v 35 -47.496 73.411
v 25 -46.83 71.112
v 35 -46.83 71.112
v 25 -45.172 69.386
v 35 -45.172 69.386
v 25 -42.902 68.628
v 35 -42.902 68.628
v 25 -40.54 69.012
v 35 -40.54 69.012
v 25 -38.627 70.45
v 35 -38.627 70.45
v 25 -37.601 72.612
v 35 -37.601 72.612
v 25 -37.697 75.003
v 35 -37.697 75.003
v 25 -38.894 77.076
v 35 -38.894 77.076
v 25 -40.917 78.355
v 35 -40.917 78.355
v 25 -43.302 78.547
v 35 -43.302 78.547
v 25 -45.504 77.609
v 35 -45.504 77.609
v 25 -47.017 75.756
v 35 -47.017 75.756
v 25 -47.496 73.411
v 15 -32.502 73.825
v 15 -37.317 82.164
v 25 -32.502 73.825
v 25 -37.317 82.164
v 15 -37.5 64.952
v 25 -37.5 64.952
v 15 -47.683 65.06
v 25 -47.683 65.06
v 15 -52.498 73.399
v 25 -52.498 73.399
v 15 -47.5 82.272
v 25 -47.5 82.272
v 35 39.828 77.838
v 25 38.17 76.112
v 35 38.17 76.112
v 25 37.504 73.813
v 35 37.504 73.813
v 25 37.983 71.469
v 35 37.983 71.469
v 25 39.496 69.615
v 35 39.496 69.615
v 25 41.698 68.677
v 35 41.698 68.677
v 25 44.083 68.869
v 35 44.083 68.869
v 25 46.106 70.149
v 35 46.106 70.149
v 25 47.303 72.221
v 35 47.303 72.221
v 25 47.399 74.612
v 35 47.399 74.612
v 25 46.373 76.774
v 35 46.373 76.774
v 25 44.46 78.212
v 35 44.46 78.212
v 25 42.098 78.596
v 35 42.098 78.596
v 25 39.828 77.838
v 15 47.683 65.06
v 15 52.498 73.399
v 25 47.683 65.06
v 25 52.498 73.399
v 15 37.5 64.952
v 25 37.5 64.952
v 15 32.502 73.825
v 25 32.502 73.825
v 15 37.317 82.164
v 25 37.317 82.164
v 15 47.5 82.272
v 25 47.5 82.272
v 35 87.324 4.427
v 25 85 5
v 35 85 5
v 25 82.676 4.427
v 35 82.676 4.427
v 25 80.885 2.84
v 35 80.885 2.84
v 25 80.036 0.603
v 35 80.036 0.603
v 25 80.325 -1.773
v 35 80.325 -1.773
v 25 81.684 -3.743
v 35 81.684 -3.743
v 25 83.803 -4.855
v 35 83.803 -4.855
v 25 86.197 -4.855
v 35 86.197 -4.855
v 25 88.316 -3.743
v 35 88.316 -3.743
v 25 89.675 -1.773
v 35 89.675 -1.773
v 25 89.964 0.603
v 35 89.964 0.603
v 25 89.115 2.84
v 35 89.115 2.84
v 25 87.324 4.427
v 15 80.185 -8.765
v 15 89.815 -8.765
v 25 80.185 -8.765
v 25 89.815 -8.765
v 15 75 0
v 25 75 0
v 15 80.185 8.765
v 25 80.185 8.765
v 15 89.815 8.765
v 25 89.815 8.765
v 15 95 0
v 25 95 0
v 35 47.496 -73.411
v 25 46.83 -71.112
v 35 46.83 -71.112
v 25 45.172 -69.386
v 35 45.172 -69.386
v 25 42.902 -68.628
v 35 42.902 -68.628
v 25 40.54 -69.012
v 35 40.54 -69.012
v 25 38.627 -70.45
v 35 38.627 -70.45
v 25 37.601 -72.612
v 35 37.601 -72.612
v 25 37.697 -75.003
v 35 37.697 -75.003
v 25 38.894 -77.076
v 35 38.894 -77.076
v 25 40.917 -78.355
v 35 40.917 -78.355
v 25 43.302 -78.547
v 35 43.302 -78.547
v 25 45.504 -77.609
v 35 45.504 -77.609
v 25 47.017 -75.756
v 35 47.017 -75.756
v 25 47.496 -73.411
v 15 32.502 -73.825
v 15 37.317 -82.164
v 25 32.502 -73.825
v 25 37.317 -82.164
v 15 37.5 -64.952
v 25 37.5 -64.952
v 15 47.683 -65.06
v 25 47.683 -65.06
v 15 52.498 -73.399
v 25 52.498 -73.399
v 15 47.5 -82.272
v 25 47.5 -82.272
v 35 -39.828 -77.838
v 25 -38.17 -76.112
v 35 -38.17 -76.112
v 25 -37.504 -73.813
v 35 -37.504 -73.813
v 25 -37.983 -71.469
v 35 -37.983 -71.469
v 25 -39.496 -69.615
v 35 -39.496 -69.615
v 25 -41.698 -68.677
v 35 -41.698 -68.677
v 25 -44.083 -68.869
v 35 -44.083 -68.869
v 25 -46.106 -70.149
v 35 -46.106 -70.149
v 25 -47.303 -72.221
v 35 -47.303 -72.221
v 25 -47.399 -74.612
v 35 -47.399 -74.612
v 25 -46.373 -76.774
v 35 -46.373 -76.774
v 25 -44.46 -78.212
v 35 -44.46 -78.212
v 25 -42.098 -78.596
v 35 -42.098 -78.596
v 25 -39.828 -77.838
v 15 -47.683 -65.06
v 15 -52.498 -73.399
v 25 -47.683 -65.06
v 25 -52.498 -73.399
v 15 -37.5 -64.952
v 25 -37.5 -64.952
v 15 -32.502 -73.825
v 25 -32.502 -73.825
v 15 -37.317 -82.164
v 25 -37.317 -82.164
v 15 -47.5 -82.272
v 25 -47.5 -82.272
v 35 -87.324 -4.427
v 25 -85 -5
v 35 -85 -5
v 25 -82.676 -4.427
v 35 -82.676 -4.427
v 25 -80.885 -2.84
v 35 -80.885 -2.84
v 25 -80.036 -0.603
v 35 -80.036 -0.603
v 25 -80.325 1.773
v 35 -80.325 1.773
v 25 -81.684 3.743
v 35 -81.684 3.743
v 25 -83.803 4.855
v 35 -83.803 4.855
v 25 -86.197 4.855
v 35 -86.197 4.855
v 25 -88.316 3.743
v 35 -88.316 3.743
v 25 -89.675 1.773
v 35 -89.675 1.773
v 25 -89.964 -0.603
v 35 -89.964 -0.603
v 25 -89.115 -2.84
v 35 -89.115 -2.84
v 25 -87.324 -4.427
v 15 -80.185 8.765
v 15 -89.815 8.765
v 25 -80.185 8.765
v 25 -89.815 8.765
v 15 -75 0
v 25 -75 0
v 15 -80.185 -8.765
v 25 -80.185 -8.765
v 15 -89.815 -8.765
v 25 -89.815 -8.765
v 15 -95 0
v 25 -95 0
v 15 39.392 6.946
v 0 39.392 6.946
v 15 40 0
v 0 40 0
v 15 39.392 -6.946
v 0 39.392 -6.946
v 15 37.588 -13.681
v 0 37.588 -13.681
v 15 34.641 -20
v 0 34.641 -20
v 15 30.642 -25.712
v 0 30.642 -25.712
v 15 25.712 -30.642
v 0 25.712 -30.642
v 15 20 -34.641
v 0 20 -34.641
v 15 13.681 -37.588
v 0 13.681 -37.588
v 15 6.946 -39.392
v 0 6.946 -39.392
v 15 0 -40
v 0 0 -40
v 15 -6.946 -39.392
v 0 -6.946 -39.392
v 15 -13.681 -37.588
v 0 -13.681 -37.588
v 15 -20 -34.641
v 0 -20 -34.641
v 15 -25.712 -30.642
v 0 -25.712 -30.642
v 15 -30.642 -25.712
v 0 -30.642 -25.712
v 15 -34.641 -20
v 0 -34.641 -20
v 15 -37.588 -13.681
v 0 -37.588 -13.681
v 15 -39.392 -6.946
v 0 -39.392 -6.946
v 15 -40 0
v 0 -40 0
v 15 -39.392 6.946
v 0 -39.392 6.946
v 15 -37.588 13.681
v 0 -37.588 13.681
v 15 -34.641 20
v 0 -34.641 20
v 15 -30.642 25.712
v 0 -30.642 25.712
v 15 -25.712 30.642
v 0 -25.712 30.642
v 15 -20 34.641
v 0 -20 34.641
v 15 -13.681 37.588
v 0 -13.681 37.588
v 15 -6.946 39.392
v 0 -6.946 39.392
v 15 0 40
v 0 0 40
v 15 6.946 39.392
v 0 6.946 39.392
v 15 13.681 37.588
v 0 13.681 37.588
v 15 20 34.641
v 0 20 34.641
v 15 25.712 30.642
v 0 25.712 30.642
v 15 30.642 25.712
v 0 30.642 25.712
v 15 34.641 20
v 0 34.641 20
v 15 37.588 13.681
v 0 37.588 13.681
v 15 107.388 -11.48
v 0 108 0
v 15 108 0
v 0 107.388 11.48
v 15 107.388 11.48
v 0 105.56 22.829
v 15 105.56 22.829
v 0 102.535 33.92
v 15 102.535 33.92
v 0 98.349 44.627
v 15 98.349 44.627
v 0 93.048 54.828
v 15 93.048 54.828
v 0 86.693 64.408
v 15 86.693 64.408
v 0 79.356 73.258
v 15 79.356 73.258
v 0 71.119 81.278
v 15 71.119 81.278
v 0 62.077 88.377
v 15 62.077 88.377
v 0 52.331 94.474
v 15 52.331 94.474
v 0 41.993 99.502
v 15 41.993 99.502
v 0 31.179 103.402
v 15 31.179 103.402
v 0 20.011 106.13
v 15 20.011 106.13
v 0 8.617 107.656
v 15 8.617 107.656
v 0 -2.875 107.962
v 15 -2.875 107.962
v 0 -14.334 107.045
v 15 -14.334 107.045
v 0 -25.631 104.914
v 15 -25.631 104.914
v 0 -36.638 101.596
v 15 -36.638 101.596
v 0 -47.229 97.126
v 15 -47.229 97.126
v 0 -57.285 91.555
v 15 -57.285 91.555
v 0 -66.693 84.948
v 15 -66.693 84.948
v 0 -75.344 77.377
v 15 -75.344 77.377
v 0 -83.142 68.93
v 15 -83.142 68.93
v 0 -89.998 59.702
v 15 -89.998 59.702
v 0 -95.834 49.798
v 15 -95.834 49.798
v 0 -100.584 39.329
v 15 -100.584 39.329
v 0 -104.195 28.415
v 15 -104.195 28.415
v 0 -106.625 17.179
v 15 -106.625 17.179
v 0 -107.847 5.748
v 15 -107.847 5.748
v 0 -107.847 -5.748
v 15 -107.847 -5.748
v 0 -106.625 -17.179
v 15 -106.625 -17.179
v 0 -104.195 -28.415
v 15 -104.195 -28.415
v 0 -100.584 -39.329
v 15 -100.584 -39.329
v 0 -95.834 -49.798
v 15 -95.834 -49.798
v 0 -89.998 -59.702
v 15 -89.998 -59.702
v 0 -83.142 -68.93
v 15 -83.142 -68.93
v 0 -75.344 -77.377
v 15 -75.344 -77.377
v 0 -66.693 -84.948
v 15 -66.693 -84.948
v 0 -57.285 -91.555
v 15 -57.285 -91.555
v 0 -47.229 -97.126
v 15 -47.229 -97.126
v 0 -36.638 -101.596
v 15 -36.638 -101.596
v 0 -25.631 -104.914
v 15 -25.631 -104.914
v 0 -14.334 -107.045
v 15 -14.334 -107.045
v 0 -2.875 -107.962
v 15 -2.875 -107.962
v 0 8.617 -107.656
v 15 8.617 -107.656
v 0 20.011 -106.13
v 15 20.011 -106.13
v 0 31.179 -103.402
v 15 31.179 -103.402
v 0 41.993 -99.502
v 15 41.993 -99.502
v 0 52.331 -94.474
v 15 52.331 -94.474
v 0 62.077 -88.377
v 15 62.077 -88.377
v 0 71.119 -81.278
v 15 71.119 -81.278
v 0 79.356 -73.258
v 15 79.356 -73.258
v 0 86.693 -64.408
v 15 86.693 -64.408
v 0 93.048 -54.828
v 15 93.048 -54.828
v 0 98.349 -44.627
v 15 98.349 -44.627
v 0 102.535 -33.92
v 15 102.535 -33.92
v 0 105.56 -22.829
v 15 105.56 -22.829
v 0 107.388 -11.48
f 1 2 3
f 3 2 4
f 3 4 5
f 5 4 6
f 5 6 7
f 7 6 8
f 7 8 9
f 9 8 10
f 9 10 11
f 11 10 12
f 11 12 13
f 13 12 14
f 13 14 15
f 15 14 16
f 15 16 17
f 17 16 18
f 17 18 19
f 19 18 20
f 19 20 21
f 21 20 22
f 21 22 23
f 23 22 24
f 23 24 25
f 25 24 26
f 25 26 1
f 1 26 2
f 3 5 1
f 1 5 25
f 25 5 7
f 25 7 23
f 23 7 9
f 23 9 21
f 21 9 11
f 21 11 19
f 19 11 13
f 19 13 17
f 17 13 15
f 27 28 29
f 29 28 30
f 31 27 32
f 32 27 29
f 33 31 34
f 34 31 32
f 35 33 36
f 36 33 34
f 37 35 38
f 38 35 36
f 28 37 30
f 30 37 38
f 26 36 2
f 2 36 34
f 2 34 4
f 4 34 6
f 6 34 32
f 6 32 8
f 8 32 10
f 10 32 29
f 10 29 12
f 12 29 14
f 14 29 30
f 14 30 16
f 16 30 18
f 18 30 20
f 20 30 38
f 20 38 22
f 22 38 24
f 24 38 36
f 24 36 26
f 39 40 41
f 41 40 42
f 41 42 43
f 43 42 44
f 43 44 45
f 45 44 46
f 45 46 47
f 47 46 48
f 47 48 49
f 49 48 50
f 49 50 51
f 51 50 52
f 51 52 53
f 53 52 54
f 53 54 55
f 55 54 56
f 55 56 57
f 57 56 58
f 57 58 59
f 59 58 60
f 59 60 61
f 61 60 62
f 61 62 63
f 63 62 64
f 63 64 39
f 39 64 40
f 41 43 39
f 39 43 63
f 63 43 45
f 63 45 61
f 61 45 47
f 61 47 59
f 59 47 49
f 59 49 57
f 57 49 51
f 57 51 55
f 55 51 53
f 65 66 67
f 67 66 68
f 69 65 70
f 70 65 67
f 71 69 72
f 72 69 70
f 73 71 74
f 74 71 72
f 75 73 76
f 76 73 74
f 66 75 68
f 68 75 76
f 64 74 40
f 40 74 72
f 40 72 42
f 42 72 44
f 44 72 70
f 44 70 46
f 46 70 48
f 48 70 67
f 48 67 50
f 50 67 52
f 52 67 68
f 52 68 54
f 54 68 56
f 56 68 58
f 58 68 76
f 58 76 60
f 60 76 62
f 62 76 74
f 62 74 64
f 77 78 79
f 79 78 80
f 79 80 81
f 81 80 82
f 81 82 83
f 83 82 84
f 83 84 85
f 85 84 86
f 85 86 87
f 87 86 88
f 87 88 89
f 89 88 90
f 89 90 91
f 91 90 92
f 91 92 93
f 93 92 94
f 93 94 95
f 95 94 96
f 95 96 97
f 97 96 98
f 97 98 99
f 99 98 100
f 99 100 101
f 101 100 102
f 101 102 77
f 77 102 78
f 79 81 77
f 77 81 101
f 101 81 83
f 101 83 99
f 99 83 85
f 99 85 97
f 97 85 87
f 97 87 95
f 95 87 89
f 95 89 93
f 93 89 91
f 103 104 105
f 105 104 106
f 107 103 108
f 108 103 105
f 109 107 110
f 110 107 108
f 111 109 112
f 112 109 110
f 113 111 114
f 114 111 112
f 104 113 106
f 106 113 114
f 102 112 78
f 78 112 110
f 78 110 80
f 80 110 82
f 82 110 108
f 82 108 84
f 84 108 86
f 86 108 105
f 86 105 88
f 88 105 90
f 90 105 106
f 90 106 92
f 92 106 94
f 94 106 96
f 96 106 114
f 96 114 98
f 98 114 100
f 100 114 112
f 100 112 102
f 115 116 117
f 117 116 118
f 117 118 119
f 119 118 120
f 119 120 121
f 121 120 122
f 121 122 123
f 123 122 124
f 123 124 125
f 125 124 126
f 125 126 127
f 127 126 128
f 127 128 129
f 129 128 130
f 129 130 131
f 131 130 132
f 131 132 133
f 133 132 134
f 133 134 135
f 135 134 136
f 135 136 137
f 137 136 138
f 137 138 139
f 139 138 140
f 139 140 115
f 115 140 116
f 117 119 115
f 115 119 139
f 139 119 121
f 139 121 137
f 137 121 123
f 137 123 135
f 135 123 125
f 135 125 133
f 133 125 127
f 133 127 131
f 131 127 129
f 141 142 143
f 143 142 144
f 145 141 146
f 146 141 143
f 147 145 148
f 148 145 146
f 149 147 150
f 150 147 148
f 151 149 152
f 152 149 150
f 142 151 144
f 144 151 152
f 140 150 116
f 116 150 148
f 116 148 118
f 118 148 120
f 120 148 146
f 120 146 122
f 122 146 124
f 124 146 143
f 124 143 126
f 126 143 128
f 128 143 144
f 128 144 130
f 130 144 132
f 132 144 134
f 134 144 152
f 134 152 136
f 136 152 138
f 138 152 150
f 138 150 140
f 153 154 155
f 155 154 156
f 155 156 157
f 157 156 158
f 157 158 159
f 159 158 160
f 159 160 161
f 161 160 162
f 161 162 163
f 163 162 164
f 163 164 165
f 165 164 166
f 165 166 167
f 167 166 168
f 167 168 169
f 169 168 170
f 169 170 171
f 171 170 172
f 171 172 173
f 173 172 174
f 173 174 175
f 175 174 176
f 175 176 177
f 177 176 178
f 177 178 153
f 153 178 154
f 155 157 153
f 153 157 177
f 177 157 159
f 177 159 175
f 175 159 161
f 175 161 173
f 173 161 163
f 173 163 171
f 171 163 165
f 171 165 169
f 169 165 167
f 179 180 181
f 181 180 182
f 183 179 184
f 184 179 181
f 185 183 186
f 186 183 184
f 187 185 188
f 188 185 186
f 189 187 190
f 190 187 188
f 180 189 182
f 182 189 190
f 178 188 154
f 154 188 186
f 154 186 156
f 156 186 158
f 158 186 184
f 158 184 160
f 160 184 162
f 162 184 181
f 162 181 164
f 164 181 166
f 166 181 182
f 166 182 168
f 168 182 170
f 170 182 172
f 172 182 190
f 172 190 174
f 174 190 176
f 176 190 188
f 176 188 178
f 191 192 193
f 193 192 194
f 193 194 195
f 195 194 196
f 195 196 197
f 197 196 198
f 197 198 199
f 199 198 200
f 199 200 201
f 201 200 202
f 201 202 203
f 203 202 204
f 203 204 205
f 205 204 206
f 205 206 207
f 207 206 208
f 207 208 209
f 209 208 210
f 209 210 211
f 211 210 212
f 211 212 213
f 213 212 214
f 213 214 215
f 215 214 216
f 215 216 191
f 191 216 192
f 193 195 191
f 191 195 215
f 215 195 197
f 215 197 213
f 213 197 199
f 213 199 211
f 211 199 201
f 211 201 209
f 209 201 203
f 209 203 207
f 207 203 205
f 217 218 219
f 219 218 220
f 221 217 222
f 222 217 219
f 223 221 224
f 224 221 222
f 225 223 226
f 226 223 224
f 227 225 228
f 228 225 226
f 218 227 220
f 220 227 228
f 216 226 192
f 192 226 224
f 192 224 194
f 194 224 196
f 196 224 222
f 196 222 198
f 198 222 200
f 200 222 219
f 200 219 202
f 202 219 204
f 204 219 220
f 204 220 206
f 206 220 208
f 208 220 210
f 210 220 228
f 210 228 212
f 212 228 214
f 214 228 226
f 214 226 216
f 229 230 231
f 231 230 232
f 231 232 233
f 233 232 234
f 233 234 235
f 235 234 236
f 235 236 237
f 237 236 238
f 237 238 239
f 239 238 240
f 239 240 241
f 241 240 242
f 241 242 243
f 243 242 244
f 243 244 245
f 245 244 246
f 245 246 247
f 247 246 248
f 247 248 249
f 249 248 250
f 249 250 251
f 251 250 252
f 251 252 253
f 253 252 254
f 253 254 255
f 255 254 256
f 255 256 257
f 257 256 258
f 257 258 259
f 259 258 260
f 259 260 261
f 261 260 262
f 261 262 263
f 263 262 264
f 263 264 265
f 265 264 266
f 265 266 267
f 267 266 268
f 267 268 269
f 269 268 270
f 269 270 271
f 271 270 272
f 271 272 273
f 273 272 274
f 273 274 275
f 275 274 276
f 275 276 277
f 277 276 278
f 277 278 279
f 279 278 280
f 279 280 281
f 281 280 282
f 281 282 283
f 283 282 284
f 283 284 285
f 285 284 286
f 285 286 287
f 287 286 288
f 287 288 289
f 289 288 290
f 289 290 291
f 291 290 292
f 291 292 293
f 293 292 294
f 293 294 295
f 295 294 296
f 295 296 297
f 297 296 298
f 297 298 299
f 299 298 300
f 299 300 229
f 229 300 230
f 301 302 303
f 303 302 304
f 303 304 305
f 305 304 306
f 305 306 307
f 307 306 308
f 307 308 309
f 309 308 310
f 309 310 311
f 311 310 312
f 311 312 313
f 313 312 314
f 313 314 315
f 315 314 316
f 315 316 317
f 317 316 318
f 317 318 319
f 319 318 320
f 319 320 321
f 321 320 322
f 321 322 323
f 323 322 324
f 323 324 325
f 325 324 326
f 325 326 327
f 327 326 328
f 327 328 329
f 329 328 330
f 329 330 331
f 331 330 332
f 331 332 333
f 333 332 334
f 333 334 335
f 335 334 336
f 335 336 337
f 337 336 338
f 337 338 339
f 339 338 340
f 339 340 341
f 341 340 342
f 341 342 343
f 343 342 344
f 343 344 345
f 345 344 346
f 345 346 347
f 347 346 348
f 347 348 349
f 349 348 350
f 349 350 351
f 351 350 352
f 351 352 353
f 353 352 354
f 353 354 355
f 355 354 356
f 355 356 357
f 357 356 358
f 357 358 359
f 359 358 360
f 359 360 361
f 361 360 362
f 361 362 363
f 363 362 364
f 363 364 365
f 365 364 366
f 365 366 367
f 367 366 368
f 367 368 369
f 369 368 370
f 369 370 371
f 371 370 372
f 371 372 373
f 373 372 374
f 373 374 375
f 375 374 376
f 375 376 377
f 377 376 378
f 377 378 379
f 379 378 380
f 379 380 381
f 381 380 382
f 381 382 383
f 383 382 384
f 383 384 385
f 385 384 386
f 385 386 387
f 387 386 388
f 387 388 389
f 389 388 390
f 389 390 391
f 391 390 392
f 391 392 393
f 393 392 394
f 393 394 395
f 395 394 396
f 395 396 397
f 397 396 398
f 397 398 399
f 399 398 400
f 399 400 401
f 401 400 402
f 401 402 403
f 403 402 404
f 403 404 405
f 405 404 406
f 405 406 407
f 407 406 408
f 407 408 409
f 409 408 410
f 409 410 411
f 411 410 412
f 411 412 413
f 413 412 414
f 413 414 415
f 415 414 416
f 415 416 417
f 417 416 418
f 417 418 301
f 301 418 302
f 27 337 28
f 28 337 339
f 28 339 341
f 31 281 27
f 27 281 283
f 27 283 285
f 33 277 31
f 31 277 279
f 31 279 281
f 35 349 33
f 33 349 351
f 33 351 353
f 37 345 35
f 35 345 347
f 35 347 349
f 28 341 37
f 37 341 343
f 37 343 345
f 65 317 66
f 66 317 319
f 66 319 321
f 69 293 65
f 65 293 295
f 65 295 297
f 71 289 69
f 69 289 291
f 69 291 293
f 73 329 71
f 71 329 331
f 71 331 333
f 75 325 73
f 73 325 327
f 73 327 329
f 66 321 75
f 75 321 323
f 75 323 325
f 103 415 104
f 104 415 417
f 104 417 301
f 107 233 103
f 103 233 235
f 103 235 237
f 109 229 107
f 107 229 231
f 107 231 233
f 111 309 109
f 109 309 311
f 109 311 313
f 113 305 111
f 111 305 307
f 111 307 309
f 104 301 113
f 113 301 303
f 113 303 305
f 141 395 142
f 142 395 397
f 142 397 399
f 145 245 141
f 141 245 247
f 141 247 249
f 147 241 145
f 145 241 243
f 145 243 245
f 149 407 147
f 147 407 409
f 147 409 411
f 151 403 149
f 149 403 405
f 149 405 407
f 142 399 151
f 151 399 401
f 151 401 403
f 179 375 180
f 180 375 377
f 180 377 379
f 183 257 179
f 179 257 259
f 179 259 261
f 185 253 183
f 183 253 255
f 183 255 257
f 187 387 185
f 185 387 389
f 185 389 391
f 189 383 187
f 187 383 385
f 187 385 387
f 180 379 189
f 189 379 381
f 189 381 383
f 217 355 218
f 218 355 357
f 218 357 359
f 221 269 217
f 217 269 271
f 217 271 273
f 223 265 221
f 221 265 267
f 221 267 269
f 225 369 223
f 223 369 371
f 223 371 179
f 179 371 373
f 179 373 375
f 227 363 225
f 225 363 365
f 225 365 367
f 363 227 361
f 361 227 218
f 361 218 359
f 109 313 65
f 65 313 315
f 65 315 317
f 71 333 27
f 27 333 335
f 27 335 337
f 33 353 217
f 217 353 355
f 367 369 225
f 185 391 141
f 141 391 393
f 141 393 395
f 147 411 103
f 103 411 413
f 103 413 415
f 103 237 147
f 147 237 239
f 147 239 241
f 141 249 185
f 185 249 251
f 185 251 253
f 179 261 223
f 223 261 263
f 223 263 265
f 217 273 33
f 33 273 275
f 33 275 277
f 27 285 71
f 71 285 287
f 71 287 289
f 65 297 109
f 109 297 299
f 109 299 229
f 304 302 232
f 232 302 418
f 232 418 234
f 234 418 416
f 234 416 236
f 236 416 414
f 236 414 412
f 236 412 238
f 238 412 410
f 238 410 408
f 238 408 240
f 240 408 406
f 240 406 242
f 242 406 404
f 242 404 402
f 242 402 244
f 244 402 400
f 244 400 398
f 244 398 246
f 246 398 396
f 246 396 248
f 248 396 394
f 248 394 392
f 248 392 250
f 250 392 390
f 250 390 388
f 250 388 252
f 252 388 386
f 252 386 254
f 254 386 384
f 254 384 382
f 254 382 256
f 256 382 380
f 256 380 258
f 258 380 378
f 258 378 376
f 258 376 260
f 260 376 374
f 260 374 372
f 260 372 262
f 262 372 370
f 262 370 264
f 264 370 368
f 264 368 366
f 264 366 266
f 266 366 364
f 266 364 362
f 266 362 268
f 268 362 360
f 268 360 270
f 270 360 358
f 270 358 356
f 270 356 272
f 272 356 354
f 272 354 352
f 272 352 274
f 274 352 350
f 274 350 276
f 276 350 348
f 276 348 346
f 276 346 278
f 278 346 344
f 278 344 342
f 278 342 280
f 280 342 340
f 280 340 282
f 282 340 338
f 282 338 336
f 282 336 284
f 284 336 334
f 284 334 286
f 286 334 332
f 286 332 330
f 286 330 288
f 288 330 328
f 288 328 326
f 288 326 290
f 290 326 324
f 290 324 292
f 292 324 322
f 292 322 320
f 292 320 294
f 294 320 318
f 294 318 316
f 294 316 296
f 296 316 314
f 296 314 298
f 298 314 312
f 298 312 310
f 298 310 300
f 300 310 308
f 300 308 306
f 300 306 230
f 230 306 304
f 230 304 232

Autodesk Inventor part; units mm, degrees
ref_plane "YZ Plane" through (0, 0, 0) normal (1, 0, 0) x (0, 1, 0)
ref_plane "XZ Plane" through (0, 0, 0) normal (0, 1, 0) x (-1, 0, 0)
ref_plane "XY Plane" through (0, 0, 0) normal (0, 0, 1) x (1, 0, 0)
sketch "Skizze1" plane through (0, 0, 0) normal (1, 0, 0) x (0, 1, 0)
  circle A0 centre (0, 0) radius 40
  circle A1 centre (0, 0) radius 108
  dimension "d0" = 216
  dimension "d1" = 80
extrude "Extrusion1" add sketch "Skizze1" along normal blind 15
sketch "Skizze3" plane through (15, 0, 0) normal (1, 0, 0) x (0, 0, -1)
  circle A0 centre (0, -85) radius 10 construction
  line L0 (0, -95) -> (-8.7647, -89.8146)
  line L1 (-8.7647, -80.1854) -> (0, -75)
  line L2 (0, -75) -> (8.7647, -80.1854)
  line L3 (8.7647, -80.1854) -> (8.7647, -89.8146)
  line L4 (0, -95) -> (8.7647, -89.8146)
  line L5 (-8.7647, -80.1854) -> (-8.7647, -89.8146)
  point P0 (0, 0)
  dimension "d8" = 20
  dimension "d9" = 85
extrude "Extrusion3" add sketch "Skizze3" along normal blind 10
sketch "Skizze4" plane through (25, 0, 0) normal (1, 0, 0) x (0, 0, -1)
  circle A0 centre (0, -85) radius 5
  point P0 (0, 0)
  dimension "d12" = 10
extrude "Extrusion4" add sketch "Skizze4" along normal blind 10
pattern_circular "Runde Anordnung1" count 6 over 360 about axis through (-10, 0, 0) along (1, 0, 0) of "Extrusion3", "Extrusion4"
properties part number "DN80-Flansch"
